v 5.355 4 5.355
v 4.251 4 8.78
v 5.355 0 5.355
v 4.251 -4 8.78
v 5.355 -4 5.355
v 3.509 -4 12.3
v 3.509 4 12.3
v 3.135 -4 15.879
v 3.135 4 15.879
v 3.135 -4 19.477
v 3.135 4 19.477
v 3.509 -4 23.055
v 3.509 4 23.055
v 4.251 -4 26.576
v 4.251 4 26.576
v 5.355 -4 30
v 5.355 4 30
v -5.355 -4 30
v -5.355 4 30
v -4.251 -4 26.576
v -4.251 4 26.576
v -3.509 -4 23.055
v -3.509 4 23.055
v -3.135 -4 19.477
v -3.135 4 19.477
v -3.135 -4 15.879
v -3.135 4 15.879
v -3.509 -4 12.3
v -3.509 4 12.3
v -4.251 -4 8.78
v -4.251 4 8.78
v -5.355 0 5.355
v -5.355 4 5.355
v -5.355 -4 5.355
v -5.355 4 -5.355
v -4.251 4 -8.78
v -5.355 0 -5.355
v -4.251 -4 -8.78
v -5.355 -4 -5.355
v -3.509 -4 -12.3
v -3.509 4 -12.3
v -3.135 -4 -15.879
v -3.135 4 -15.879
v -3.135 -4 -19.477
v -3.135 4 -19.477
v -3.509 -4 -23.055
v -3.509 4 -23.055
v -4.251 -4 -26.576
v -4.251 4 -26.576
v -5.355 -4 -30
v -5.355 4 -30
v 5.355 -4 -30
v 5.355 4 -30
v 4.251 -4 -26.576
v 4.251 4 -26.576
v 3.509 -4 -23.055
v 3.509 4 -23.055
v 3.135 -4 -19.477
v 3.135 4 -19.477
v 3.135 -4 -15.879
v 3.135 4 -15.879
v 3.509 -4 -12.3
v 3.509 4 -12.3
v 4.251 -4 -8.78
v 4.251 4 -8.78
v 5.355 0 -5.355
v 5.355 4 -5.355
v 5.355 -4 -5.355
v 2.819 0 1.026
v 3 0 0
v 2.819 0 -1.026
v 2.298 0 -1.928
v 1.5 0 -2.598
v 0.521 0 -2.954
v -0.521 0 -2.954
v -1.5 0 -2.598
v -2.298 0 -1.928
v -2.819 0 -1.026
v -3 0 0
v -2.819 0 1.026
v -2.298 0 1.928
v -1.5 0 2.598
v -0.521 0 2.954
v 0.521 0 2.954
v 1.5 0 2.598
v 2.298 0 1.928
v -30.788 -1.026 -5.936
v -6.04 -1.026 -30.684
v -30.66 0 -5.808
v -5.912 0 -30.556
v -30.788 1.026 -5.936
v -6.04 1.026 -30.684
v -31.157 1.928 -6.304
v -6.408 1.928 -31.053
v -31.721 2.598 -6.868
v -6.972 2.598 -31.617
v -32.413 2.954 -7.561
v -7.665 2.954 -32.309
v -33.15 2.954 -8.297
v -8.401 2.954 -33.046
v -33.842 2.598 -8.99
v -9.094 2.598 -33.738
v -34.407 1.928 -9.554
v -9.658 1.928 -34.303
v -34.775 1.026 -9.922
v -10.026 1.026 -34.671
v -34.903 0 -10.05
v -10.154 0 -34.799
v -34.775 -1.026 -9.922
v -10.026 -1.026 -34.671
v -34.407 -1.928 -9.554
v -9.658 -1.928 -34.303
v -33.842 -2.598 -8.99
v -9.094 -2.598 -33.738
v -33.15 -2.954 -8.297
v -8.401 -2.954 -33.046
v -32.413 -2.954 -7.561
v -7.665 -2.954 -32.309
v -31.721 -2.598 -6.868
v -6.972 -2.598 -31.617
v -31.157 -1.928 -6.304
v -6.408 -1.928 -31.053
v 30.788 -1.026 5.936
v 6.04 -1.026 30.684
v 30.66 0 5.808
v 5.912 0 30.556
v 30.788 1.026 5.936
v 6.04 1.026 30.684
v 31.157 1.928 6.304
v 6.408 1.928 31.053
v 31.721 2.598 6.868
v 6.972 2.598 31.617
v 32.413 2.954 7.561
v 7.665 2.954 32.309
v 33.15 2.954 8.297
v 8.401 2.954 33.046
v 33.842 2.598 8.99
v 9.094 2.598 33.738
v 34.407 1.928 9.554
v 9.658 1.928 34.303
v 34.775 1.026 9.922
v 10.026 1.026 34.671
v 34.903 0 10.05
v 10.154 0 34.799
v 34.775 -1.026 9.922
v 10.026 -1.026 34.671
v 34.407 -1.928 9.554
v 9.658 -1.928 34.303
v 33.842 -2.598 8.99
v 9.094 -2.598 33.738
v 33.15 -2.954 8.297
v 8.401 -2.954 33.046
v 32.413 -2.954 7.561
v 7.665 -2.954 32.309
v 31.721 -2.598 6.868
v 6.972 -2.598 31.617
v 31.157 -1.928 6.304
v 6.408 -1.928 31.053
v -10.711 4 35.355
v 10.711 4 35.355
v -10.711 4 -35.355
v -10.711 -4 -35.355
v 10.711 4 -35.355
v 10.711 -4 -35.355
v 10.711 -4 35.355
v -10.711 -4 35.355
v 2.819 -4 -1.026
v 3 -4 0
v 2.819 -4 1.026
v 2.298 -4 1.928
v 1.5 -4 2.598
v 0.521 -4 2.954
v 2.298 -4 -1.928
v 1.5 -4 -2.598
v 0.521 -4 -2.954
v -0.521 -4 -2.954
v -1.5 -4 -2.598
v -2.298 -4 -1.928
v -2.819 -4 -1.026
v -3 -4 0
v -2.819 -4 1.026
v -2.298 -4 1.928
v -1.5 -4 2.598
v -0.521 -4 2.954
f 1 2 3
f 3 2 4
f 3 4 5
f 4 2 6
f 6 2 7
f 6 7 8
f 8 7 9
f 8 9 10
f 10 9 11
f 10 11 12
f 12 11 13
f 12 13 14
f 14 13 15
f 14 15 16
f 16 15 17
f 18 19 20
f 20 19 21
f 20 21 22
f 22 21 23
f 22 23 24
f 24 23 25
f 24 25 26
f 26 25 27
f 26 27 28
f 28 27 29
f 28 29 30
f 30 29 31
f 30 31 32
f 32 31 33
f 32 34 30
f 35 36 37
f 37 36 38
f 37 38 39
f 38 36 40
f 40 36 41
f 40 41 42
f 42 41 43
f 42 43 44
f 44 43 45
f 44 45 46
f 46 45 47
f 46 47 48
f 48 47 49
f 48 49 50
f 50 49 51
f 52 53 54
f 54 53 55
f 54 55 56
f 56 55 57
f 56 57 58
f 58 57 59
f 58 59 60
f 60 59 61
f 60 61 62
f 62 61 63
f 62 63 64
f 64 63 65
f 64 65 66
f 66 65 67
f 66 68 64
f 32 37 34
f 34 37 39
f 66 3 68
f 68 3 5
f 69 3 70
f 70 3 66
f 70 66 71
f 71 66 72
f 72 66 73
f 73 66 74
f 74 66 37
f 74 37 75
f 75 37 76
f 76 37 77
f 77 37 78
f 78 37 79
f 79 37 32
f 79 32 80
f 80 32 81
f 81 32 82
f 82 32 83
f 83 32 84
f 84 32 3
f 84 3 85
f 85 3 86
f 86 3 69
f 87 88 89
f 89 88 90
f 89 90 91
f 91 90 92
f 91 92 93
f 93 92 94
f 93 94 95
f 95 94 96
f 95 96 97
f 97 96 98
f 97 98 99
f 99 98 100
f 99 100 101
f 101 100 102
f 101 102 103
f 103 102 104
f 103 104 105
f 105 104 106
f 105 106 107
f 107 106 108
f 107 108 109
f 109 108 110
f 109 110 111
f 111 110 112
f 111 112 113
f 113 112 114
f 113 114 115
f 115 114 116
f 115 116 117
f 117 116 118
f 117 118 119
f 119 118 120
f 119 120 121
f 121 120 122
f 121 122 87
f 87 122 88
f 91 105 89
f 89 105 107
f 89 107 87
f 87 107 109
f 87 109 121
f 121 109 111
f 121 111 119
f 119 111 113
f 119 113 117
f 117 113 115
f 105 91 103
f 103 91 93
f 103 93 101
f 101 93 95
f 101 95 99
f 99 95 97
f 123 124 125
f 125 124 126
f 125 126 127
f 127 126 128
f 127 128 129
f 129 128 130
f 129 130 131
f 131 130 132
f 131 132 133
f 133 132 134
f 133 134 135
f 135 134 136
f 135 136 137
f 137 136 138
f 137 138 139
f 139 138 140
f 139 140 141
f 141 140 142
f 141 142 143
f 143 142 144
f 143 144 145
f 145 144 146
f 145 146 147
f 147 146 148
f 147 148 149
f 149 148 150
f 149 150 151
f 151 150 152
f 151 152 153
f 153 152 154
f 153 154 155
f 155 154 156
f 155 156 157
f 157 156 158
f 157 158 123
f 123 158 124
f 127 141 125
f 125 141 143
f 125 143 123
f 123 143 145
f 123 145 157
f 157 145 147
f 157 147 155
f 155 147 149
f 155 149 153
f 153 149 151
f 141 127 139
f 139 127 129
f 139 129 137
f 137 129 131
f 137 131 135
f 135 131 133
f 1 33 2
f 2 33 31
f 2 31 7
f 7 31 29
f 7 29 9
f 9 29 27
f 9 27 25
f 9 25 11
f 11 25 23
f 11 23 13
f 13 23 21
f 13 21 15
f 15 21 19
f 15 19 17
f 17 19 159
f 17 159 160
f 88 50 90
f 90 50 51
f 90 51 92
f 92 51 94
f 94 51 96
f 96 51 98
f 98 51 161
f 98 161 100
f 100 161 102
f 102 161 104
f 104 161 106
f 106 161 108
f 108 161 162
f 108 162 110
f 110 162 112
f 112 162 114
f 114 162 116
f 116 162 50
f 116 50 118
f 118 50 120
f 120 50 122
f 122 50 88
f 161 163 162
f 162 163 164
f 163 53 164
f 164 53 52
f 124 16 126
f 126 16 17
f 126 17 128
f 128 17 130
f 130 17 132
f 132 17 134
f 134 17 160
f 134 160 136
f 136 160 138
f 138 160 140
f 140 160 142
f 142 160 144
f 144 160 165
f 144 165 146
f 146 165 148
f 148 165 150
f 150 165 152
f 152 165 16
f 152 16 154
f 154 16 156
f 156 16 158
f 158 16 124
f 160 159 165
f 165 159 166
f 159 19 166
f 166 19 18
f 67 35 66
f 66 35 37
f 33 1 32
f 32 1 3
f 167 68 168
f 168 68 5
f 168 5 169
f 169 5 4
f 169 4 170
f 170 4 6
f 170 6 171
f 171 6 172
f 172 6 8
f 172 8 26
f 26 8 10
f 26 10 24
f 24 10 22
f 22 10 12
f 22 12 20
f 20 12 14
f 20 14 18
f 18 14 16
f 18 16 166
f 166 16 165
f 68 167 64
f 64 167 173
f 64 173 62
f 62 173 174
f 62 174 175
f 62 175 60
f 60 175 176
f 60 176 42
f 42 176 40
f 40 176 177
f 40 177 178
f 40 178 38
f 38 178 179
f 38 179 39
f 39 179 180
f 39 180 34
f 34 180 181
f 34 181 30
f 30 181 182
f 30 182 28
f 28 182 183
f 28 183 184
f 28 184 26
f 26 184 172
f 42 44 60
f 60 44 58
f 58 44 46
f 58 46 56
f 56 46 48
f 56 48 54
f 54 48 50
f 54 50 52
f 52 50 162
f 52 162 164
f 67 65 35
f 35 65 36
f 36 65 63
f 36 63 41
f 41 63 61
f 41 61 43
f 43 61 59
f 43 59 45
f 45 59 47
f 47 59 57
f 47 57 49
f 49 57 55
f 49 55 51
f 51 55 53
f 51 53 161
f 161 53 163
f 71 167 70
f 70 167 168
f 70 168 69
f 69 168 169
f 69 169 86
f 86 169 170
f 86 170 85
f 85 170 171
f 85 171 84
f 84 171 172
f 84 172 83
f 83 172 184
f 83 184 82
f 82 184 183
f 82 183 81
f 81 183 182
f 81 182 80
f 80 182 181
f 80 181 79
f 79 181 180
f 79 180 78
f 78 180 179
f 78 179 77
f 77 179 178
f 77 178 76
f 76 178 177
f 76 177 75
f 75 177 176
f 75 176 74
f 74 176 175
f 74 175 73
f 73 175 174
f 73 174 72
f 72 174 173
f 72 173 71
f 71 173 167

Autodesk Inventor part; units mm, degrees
ref_plane "YZ Plane" through (0, 0, 0) normal (1, 0, 0) x (0, 1, 0)
ref_plane "XZ Plane" through (0, 0, 0) normal (0, 1, 0) x (-1, 0, 0)
ref_plane "XY Plane" through (0, 0, 0) normal (0, 0, 1) x (1, 0, 0)
sketch "スケッチ1" plane through (0, 0, 0) normal (0, 1, 0) x (-1, 0, 0)
  line L0 (-35.3553, 0) -> (0, 35.3553)
  line L1 (0, 35.3553) -> (35.3553, 0)
  line L2 (35.3553, 0) -> (0, -35.3553)
  line L3 (0, -35.3553) -> (-35.3553, 0)
  line L4 (-25, 25) -> (25, -25) construction
  line L5 (25, 25) -> (-25, -25) construction
  line L6 (0, 0) -> (0, -30)
  line L7 (0, -30) -> (5.3553, -30)
  line L8 (5.3553, -30) -> (10.7107, -35.3553)
  line L9 (5.3553, -30) -> (5.3553, 0)
  line L10 (0, 0) -> (30, 0)
  line L11 (30, 0) -> (30, -5.3553)
  line L12 (30, -5.3553) -> (0, -5.3553)
  line L13 (35.3553, 0) -> (47.1243, -11.769)
  line L14 (35.3553, 0) -> (35.3553, -35.3553)
  line L15 (0, -35.3553) -> (35.3553, -35.3553)
  line L16 (30, -5.3553) -> (35.3553, -10.7107)
  line L17 (5.3553, 30) -> (5.3553, 0)
  line L18 (30, 5.3553) -> (0, 5.3553)
  line L19 (0, 35.3553) -> (35.3553, 0)
  line L20 (30, 5.3553) -> (35.3553, 10.7107)
  line L21 (30, 0) -> (30, 5.3553)
  line L22 (0, 30) -> (5.3553, 30)
  line L23 (5.3553, 30) -> (10.7107, 35.3553)
  line L24 (0, 35.3553) -> (35.3553, 35.3553)
  line L25 (35.3553, 0) -> (35.3553, 35.3553)
  line L26 (0, 0) -> (0, 30)
  line L27 (0, 0) -> (30, 0)
  line L28 (-30, 5.3553) -> (0, 5.3553)
  line L29 (-5.3553, 30) -> (-5.3553, 0)
  line L30 (-35.3553, 0) -> (0, 35.3553)
  line L31 (-5.3553, 30) -> (-10.7107, 35.3553)
  line L32 (0, 30) -> (-5.3553, 30)
  line L33 (-30, 0) -> (-30, 5.3553)
  line L34 (-30, 5.3553) -> (-35.3553, 10.7107)
  line L35 (-35.3553, 0) -> (-35.3553, 35.3553)
  line L36 (0, 35.3553) -> (-35.3553, 35.3553)
  line L37 (0, 0) -> (-30, 0)
  line L38 (0, 0) -> (0, 30)
  line L39 (-5.3553, -30) -> (-5.3553, 0)
  line L40 (-30, -5.3553) -> (0, -5.3553)
  line L41 (0, -35.3553) -> (-35.3553, 0)
  line L42 (-30, -5.3553) -> (-35.3553, -10.7107)
  line L43 (-30, 0) -> (-30, -5.3553)
  line L44 (0, -30) -> (-5.3553, -30)
  line L45 (-5.3553, -30) -> (-10.7107, -35.3553)
  line L46 (0, -35.3553) -> (-35.3553, -35.3553)
  line L47 (-35.3553, 0) -> (-35.3553, -35.3553)
  line L48 (0, 0) -> (0, -30)
  line L49 (0, 0) -> (-30, 0)
  point P0 (35.3553, 0)
  point P1 (5.3553, 5.3553)
  point P2 (-5.3553, 5.3553)
  point P3 (-5.3553, -5.3553)
  point P4 (0, -35.3553)
  point P5 (5.3553, -5.3553)
  point P6 (-5.3553, 0)
  dimension "d0" = 50
  dimension "d1" = 50
  dimension "d3" = 30
  dimension "d4" = 30
  dimension "d7" = 360
extrude "押し出し1" add sketch "スケッチ1" along normal mid plane 8 contours L31 L36 L0 | L32 L26 L28 L29 | L0 L1 L22 L32 | L28 L26 L37 L29 | L44 L7 L2 L3 | L39 L40 L6 L44 | L3 L46 L45 | L39 L37 L6 L40 | L24 L23 L1 | L22 L17 L18 L26 | L18 L17 L10 L26 | L2 L8 L15 | L6 L12 L9 L7 | L6 L10 L9 L12
sketch "スケッチ3" plane through (5.3553, -4, 30) normal (0.7071, 0, -0.7071) x (-0.7071, 0, -0.7071)
  line L0 (-7.5736, 8) -> (7.5736, 8) projected
  line L1 (42.4264, 0) -> (0, 0) projected
  line L2 (-7.5736, 8) -> (0, 0)
  line L3 (-7.5736, 0) -> (7.5736, 0) projected
  line L4 (0, 8) -> (-7.5736, 0)
  circle A0 centre (-3.7868, 4) radius 3
  point P0 (25, 4)
  point P1 (17.4264, 0)
  dimension "d12" = 6
extrude "押し出し2" add sketch "スケッチ3" along normal blind 35 contours A0 L4 L2 | L2 L4 A0 | A0 L2 L4 | L2 A0 L4
pattern_circular "円形状パターン1" count 2 over 360 about axis through (0, -10, 0) along (0, 1, 0) of "押し出し2"
sketch "スケッチ4" plane through (0, 4, 0) normal (0, 1, 0) x (1, 0, 0)
  line L0 (-30, -5.3553) -> (-5.3553, -5.3553) projected
  line L1 (-35.3553, -10.7107) -> (-30, -5.3553) projected
  arc A0 (-5.3553, -5.3553) -> (-30, -5.3553) centre (-17.6777, -37.7141) ccw
  line L2 (-30, -5.3553) -> (-5.3553, -5.3553)
  line L3 (-35.3553, 0) -> (35.3553, 0)
  line L4 (35.3553, -10.7107) -> (35.3553, 10.7107) projected
  line L5 (10.7107, 35.3553) -> (-10.7107, 35.3553) projected
  line L6 (0, 35.3553) -> (0, -35.3553)
  arc A1 (-30, 5.3553) -> (-5.3553, 5.3553) centre (-17.6777, 37.7141) ccw
  arc A2 (5.3553, -5.3553) -> (5.3553, -30) centre (37.7141, -17.6777) ccw
  line L7 (5.3553, -30) -> (5.3553, -5.3553)
  arc A3 (-5.3553, -30) -> (-5.3553, -5.3553) centre (-37.7141, -17.6777) ccw
  arc A4 (5.3553, 5.3553) -> (30, 5.3553) centre (17.6777, 37.7141) ccw
  line L8 (30, 5.3553) -> (5.3553, 5.3553)
  arc A5 (30, -5.3553) -> (5.3553, -5.3553) centre (17.6777, -37.7141) ccw
  arc A6 (-5.3553, 5.3553) -> (-5.3553, 30) centre (-37.7141, 17.6777) ccw
  line L9 (-5.3553, 30) -> (-5.3553, 5.3553)
  arc A7 (5.3553, 30) -> (5.3553, 5.3553) centre (37.7141, 17.6777) ccw
  line L10 (-30, 5.3553) -> (-35.3553, 10.7107) projected
  line L11 (-30, 5.3553) -> (-5.3553, 5.3553) projected
  line L12 (-30, 5.3553) -> (-5.3553, 5.3553)
  line L13 (-5.3553, 30) -> (-5.3553, 5.3553)
  line L14 (5.3553, 30) -> (5.3553, 5.3553)
  line L15 (5.3553, -5.3553) -> (30, -5.3553)
  line L16 (10.7107, -35.3553) -> (5.3553, -30) projected
  line L17 (5.3553, -5.3553) -> (5.3553, -30)
  line L18 (-5.3553, -5.3553) -> (-5.3553, -30)
  line L19 (-5.3553, 5.3553) -> (-5.3553, -5.3553)
  line L20 (5.3553, -5.3553) -> (5.3553, 5.3553)
  point P0 (0, 0)
  point P1 (-5.3553, 5.3553)
  point P2 (-5.3553, 5.3553)
  point P3 (5.3553, 5.3553)
  point P4 (5.3553, 5.3553)
  point P5 (5.3553, 5.3553)
  point P6 (5.3553, 5.3553)
  dimension "d20" = 360
extrude "押し出し3" cut sketch "スケッチ4" against normal blind 8 contours L9 A6 | A7 L14 | L7 A2 | A3 L18
sketch "スケッチ7" plane through (0, 4, 0) normal (0, 1, 0) x (1, 0, 0)
  line L0 (-5.3553, -5.3553) -> (-5.3553, 5.3553) projected
  line L1 (5.3553, -5.3553) -> (5.3553, 5.3553) projected
  line L2 (-5.3553, -5.3553) -> (5.3553, -5.3553)
  line L3 (5.3553, -5.3553) -> (5.3553, 5.3553)
  line L4 (5.3553, 5.3553) -> (-5.3553, 5.3553)
  line L5 (-5.3553, 5.3553) -> (-5.3553, -5.3553)
  arc A0 (-5.3553, -30) -> (-5.3553, -5.3553) centre (-37.7141, -17.6777) ccw projected
  arc A1 (5.3553, 30) -> (5.3553, 5.3553) centre (37.7141, 17.6777) ccw projected
  point P0 (0, 0)
extrude "押し出し5" cut sketch "スケッチ7" against normal blind 4
sketch "スケッチ8" plane through (0, -4, 0) normal (0, -1, 0) x (1, 0, 0)
  circle A0 centre (0, 0) radius 3
  dimension "d34" = 6
extrude "押し出し6" cut sketch "スケッチ8" against normal blind 4
